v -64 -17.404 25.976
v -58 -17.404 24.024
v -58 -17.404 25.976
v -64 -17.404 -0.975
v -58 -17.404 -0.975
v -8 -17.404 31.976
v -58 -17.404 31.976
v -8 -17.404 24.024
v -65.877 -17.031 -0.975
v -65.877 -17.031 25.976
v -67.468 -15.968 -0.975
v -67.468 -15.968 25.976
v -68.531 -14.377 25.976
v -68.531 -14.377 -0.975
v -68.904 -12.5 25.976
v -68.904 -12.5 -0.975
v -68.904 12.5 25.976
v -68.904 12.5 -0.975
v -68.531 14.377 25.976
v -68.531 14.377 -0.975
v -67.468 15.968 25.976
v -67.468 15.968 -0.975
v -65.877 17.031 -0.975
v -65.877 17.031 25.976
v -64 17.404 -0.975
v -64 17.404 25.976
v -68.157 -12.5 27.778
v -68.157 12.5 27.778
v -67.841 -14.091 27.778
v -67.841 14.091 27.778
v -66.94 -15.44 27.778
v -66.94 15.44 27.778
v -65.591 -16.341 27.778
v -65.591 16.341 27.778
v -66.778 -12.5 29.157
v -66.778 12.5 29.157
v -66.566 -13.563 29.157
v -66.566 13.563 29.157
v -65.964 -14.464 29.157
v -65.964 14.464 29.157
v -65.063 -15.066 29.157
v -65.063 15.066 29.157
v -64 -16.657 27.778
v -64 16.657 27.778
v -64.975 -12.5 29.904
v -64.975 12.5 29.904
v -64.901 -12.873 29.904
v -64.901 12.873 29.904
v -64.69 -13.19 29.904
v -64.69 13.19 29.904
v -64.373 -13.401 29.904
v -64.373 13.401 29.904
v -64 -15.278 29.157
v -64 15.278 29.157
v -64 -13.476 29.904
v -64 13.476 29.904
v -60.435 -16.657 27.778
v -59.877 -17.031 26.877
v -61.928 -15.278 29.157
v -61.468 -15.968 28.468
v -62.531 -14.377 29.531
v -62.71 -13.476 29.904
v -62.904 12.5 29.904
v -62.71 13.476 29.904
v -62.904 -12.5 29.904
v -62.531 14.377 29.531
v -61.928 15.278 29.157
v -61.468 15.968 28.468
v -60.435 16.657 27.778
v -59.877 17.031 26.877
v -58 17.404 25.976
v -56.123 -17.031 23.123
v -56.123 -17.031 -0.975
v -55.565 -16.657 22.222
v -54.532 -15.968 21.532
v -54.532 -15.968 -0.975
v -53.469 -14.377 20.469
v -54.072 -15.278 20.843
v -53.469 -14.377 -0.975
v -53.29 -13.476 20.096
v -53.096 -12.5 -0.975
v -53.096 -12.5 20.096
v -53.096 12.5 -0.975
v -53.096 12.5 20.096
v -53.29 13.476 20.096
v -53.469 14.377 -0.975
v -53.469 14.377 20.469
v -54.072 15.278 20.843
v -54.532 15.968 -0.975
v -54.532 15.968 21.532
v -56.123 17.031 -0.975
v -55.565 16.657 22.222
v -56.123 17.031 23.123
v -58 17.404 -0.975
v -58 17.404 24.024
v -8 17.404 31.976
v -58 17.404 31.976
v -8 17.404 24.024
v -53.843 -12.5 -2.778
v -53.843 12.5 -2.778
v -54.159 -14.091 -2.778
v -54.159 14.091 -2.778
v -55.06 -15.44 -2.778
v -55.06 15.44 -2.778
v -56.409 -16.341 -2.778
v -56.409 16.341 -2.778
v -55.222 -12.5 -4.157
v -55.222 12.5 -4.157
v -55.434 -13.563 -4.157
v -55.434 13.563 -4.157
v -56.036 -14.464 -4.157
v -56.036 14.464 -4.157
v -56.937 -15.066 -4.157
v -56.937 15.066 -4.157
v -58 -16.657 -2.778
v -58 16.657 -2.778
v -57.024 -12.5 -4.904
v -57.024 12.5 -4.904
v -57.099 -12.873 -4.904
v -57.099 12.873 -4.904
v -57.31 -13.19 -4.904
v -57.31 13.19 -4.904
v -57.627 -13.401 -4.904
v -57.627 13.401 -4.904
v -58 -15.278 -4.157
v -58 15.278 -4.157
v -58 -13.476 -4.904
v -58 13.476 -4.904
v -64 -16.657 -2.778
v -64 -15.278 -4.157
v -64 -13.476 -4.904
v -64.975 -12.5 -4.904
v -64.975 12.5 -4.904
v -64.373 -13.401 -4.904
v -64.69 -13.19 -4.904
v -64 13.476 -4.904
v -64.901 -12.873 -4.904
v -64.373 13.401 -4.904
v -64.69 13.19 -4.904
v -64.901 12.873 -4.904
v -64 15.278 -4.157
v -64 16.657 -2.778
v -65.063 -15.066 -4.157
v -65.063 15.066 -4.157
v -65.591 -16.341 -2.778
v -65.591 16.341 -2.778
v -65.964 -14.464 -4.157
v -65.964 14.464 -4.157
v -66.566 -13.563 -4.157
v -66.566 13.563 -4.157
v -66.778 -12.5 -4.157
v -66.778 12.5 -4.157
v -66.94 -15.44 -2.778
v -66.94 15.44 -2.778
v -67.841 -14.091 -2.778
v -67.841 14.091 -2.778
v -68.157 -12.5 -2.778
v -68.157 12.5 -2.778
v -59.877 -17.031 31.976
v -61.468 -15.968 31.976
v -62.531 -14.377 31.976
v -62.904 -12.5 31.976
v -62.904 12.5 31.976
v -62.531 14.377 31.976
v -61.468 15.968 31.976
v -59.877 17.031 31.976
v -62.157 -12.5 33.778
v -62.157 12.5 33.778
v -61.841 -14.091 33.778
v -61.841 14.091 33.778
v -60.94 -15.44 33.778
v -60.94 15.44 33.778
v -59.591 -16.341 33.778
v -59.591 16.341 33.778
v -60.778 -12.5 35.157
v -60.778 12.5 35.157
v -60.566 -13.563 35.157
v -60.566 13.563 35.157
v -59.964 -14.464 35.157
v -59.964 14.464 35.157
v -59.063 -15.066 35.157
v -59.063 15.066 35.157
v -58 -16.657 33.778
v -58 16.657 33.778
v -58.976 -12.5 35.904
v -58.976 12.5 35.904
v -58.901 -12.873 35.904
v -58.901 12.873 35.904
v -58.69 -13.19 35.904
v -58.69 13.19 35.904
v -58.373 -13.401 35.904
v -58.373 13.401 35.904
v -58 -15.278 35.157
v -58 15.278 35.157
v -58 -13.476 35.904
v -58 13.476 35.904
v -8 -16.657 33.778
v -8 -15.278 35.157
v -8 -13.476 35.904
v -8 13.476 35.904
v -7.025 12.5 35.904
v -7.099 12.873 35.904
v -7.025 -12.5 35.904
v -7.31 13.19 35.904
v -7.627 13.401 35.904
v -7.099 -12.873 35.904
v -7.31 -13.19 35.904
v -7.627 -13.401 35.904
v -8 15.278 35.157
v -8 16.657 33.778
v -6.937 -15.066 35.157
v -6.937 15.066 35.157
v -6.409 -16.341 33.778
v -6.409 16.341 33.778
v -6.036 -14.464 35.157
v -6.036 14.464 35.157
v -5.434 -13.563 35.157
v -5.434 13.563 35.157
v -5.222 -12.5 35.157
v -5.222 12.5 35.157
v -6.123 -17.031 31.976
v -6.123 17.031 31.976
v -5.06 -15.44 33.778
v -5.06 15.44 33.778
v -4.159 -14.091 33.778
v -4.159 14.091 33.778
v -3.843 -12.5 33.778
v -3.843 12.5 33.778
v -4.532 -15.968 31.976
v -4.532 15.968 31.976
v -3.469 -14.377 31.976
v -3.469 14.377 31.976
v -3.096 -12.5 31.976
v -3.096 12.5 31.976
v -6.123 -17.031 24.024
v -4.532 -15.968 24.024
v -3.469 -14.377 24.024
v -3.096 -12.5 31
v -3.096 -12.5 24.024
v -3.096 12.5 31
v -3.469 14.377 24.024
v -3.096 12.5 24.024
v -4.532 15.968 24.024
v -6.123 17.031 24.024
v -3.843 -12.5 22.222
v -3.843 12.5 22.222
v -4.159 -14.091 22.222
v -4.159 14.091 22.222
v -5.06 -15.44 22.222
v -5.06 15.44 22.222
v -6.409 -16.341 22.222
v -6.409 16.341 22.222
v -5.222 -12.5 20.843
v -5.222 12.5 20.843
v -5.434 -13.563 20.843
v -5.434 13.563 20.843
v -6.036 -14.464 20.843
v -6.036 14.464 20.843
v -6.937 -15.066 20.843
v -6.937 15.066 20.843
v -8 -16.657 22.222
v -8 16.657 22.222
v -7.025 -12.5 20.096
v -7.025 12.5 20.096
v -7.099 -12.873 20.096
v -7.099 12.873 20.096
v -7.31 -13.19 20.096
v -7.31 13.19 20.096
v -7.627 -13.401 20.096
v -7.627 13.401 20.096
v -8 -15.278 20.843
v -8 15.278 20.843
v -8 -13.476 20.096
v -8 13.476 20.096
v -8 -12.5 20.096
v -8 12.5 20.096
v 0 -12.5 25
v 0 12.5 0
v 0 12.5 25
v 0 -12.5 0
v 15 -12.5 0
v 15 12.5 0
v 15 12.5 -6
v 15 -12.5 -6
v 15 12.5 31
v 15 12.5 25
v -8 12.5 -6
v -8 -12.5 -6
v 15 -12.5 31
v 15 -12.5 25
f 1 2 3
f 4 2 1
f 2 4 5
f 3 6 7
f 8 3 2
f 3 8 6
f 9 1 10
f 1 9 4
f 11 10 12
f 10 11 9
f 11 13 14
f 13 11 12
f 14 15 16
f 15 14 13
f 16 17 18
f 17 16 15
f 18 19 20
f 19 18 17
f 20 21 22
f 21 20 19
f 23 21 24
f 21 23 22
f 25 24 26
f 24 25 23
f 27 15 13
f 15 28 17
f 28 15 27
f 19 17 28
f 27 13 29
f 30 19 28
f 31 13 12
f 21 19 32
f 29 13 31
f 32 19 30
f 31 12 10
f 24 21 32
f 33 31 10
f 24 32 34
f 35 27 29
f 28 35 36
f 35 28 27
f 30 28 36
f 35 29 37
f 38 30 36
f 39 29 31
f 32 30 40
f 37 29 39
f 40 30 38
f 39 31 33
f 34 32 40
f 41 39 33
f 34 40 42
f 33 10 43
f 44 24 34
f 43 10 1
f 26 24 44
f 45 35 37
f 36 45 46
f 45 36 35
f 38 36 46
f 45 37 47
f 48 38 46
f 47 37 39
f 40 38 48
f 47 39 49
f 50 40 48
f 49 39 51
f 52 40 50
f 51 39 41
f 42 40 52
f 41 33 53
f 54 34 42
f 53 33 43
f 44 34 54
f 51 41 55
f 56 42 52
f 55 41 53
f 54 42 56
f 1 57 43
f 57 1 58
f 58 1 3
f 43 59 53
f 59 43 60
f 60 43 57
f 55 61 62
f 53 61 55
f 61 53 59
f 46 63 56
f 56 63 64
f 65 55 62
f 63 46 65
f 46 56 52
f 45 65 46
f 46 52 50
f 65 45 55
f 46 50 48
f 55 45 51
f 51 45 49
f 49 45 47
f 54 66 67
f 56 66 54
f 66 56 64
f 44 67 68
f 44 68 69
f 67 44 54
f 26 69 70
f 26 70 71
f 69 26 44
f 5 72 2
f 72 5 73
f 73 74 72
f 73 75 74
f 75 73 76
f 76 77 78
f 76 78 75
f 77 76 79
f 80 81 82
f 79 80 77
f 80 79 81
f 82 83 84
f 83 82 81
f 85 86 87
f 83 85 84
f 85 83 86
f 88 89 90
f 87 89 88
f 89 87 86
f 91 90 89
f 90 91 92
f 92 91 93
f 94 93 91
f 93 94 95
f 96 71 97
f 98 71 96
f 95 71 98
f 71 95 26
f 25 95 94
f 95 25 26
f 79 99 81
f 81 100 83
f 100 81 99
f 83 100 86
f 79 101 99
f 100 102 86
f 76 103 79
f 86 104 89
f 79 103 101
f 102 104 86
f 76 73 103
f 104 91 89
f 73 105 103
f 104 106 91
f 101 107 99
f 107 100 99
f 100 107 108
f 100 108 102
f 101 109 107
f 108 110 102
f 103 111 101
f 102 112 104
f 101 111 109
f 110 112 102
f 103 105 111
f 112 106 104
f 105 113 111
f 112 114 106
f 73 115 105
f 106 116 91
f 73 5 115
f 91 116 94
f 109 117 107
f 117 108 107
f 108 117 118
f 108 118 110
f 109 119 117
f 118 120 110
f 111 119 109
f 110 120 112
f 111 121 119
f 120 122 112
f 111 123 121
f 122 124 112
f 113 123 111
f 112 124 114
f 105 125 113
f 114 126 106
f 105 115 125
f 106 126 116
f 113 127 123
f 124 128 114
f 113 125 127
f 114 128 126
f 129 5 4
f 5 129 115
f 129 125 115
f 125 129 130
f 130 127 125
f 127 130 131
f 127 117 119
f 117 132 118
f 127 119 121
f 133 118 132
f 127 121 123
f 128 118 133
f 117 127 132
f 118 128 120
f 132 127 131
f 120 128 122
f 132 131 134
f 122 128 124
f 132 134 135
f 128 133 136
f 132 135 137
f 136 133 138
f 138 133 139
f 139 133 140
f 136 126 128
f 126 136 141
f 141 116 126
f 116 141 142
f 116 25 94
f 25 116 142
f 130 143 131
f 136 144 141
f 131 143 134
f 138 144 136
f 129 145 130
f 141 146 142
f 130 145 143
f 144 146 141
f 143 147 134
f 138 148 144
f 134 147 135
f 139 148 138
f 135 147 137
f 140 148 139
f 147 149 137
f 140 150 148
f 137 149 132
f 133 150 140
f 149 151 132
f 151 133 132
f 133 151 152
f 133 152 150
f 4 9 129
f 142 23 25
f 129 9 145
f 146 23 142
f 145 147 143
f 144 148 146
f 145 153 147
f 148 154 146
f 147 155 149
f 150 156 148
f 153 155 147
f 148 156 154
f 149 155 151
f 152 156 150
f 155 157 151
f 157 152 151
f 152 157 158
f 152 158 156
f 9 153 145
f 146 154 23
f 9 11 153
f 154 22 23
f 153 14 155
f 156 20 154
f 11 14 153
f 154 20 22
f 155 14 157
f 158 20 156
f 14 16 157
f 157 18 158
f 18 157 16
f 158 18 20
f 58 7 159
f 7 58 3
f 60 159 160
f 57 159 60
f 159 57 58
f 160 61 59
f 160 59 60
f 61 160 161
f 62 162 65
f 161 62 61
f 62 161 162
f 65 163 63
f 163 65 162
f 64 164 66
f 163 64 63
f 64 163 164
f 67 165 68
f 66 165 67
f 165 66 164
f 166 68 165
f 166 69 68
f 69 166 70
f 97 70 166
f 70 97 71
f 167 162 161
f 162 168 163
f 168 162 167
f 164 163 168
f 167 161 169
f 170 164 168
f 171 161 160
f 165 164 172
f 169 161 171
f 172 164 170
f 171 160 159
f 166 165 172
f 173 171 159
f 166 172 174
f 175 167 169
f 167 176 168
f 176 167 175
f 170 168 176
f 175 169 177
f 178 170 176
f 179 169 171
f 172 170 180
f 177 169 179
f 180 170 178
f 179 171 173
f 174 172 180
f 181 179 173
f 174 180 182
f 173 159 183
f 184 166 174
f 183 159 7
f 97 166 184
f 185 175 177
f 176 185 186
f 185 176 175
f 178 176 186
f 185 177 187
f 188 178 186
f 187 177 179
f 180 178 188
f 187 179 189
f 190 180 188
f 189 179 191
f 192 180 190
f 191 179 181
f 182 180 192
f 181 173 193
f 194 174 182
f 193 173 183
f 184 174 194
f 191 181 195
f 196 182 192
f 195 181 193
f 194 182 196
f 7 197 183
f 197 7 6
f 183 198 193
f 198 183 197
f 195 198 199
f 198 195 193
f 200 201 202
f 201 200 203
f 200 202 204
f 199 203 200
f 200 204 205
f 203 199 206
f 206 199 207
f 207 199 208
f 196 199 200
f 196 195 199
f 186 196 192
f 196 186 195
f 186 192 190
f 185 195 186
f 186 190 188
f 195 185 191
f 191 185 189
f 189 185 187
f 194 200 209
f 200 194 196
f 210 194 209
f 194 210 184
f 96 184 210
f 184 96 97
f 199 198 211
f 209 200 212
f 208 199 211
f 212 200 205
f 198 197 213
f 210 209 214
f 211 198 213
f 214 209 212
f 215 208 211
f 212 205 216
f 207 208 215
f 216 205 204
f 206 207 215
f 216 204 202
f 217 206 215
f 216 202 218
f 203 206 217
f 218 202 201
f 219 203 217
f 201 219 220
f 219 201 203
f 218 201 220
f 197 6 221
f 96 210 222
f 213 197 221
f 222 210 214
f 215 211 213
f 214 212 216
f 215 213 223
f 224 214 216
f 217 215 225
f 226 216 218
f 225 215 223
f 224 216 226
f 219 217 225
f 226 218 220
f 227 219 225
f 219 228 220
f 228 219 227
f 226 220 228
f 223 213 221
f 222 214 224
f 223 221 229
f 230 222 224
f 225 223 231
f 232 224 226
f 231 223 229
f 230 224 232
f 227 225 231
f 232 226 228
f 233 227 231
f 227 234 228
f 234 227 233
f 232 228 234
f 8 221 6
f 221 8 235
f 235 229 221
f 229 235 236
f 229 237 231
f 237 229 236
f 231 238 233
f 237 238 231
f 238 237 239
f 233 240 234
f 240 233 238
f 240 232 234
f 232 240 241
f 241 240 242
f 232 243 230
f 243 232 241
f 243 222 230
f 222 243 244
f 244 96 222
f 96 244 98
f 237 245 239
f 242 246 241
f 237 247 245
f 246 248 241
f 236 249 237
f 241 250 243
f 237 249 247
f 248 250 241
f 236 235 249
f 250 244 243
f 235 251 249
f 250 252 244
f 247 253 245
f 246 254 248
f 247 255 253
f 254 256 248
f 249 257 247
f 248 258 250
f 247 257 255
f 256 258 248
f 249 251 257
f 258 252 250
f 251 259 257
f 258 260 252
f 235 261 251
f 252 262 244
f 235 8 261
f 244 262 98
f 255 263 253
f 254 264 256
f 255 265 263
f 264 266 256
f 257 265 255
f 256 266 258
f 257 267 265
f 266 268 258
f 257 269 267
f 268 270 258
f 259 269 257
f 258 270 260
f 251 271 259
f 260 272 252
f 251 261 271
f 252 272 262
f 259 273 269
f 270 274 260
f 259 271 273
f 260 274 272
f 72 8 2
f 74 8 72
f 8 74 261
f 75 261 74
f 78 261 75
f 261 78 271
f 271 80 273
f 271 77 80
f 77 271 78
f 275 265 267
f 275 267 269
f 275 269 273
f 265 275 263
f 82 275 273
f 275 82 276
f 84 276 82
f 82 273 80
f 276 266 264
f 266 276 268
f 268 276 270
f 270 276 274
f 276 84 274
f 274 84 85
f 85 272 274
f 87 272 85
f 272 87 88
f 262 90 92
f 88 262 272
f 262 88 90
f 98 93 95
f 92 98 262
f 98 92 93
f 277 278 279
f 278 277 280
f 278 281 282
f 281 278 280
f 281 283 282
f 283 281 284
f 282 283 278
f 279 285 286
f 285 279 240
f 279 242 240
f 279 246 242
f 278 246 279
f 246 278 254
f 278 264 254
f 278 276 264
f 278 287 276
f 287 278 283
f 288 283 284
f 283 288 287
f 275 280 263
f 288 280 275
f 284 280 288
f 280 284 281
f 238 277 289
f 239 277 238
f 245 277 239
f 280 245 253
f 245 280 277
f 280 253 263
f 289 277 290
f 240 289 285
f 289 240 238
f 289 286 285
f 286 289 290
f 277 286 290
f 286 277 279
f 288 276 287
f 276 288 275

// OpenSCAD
// Headphone hook clamp for 25mm desk thickness
// Extends 50mm out, curved holding part via rounded bend
// Sturdy 6mm walls, friction C-clamp (no screws)

desk_thickness = 25;
arm_thick = 6;
back_thick = 8;
clamp_depth = 15;
width = 25;
hook_extension = 50;
hang_length = 25;
round_r = 5;

union() {
    // Bottom arm (under desk)
    translate([0, -width/2, -arm_thick]) cube([clamp_depth, width, arm_thick]);
    
    // Top arm (over desk)
    translate([0, -width/2, desk_thickness]) cube([clamp_depth, width, arm_thick]);
    
    // Vertical connector (back of C-clamp)
    translate([-back_thick, -width/2, -arm_thick]) cube([back_thick, width, desk_thickness + 2 * arm_thick]);
    
    // Rounded hook (L-shaped with rounded bend for curved holding)
    minkowski() {
        union() {
            // Horizontal extension arm
            translate([-back_thick - hook_extension, -width/2, desk_thickness]) cube([hook_extension, width, arm_thick]);
            
            // Vertical drop at end
            translate([-back_thick - hook_extension - arm_thick, -width/2, desk_thickness - hang_length]) cube([arm_thick, width, hang_length]);
        }
        sphere(round_r);
    }
}
